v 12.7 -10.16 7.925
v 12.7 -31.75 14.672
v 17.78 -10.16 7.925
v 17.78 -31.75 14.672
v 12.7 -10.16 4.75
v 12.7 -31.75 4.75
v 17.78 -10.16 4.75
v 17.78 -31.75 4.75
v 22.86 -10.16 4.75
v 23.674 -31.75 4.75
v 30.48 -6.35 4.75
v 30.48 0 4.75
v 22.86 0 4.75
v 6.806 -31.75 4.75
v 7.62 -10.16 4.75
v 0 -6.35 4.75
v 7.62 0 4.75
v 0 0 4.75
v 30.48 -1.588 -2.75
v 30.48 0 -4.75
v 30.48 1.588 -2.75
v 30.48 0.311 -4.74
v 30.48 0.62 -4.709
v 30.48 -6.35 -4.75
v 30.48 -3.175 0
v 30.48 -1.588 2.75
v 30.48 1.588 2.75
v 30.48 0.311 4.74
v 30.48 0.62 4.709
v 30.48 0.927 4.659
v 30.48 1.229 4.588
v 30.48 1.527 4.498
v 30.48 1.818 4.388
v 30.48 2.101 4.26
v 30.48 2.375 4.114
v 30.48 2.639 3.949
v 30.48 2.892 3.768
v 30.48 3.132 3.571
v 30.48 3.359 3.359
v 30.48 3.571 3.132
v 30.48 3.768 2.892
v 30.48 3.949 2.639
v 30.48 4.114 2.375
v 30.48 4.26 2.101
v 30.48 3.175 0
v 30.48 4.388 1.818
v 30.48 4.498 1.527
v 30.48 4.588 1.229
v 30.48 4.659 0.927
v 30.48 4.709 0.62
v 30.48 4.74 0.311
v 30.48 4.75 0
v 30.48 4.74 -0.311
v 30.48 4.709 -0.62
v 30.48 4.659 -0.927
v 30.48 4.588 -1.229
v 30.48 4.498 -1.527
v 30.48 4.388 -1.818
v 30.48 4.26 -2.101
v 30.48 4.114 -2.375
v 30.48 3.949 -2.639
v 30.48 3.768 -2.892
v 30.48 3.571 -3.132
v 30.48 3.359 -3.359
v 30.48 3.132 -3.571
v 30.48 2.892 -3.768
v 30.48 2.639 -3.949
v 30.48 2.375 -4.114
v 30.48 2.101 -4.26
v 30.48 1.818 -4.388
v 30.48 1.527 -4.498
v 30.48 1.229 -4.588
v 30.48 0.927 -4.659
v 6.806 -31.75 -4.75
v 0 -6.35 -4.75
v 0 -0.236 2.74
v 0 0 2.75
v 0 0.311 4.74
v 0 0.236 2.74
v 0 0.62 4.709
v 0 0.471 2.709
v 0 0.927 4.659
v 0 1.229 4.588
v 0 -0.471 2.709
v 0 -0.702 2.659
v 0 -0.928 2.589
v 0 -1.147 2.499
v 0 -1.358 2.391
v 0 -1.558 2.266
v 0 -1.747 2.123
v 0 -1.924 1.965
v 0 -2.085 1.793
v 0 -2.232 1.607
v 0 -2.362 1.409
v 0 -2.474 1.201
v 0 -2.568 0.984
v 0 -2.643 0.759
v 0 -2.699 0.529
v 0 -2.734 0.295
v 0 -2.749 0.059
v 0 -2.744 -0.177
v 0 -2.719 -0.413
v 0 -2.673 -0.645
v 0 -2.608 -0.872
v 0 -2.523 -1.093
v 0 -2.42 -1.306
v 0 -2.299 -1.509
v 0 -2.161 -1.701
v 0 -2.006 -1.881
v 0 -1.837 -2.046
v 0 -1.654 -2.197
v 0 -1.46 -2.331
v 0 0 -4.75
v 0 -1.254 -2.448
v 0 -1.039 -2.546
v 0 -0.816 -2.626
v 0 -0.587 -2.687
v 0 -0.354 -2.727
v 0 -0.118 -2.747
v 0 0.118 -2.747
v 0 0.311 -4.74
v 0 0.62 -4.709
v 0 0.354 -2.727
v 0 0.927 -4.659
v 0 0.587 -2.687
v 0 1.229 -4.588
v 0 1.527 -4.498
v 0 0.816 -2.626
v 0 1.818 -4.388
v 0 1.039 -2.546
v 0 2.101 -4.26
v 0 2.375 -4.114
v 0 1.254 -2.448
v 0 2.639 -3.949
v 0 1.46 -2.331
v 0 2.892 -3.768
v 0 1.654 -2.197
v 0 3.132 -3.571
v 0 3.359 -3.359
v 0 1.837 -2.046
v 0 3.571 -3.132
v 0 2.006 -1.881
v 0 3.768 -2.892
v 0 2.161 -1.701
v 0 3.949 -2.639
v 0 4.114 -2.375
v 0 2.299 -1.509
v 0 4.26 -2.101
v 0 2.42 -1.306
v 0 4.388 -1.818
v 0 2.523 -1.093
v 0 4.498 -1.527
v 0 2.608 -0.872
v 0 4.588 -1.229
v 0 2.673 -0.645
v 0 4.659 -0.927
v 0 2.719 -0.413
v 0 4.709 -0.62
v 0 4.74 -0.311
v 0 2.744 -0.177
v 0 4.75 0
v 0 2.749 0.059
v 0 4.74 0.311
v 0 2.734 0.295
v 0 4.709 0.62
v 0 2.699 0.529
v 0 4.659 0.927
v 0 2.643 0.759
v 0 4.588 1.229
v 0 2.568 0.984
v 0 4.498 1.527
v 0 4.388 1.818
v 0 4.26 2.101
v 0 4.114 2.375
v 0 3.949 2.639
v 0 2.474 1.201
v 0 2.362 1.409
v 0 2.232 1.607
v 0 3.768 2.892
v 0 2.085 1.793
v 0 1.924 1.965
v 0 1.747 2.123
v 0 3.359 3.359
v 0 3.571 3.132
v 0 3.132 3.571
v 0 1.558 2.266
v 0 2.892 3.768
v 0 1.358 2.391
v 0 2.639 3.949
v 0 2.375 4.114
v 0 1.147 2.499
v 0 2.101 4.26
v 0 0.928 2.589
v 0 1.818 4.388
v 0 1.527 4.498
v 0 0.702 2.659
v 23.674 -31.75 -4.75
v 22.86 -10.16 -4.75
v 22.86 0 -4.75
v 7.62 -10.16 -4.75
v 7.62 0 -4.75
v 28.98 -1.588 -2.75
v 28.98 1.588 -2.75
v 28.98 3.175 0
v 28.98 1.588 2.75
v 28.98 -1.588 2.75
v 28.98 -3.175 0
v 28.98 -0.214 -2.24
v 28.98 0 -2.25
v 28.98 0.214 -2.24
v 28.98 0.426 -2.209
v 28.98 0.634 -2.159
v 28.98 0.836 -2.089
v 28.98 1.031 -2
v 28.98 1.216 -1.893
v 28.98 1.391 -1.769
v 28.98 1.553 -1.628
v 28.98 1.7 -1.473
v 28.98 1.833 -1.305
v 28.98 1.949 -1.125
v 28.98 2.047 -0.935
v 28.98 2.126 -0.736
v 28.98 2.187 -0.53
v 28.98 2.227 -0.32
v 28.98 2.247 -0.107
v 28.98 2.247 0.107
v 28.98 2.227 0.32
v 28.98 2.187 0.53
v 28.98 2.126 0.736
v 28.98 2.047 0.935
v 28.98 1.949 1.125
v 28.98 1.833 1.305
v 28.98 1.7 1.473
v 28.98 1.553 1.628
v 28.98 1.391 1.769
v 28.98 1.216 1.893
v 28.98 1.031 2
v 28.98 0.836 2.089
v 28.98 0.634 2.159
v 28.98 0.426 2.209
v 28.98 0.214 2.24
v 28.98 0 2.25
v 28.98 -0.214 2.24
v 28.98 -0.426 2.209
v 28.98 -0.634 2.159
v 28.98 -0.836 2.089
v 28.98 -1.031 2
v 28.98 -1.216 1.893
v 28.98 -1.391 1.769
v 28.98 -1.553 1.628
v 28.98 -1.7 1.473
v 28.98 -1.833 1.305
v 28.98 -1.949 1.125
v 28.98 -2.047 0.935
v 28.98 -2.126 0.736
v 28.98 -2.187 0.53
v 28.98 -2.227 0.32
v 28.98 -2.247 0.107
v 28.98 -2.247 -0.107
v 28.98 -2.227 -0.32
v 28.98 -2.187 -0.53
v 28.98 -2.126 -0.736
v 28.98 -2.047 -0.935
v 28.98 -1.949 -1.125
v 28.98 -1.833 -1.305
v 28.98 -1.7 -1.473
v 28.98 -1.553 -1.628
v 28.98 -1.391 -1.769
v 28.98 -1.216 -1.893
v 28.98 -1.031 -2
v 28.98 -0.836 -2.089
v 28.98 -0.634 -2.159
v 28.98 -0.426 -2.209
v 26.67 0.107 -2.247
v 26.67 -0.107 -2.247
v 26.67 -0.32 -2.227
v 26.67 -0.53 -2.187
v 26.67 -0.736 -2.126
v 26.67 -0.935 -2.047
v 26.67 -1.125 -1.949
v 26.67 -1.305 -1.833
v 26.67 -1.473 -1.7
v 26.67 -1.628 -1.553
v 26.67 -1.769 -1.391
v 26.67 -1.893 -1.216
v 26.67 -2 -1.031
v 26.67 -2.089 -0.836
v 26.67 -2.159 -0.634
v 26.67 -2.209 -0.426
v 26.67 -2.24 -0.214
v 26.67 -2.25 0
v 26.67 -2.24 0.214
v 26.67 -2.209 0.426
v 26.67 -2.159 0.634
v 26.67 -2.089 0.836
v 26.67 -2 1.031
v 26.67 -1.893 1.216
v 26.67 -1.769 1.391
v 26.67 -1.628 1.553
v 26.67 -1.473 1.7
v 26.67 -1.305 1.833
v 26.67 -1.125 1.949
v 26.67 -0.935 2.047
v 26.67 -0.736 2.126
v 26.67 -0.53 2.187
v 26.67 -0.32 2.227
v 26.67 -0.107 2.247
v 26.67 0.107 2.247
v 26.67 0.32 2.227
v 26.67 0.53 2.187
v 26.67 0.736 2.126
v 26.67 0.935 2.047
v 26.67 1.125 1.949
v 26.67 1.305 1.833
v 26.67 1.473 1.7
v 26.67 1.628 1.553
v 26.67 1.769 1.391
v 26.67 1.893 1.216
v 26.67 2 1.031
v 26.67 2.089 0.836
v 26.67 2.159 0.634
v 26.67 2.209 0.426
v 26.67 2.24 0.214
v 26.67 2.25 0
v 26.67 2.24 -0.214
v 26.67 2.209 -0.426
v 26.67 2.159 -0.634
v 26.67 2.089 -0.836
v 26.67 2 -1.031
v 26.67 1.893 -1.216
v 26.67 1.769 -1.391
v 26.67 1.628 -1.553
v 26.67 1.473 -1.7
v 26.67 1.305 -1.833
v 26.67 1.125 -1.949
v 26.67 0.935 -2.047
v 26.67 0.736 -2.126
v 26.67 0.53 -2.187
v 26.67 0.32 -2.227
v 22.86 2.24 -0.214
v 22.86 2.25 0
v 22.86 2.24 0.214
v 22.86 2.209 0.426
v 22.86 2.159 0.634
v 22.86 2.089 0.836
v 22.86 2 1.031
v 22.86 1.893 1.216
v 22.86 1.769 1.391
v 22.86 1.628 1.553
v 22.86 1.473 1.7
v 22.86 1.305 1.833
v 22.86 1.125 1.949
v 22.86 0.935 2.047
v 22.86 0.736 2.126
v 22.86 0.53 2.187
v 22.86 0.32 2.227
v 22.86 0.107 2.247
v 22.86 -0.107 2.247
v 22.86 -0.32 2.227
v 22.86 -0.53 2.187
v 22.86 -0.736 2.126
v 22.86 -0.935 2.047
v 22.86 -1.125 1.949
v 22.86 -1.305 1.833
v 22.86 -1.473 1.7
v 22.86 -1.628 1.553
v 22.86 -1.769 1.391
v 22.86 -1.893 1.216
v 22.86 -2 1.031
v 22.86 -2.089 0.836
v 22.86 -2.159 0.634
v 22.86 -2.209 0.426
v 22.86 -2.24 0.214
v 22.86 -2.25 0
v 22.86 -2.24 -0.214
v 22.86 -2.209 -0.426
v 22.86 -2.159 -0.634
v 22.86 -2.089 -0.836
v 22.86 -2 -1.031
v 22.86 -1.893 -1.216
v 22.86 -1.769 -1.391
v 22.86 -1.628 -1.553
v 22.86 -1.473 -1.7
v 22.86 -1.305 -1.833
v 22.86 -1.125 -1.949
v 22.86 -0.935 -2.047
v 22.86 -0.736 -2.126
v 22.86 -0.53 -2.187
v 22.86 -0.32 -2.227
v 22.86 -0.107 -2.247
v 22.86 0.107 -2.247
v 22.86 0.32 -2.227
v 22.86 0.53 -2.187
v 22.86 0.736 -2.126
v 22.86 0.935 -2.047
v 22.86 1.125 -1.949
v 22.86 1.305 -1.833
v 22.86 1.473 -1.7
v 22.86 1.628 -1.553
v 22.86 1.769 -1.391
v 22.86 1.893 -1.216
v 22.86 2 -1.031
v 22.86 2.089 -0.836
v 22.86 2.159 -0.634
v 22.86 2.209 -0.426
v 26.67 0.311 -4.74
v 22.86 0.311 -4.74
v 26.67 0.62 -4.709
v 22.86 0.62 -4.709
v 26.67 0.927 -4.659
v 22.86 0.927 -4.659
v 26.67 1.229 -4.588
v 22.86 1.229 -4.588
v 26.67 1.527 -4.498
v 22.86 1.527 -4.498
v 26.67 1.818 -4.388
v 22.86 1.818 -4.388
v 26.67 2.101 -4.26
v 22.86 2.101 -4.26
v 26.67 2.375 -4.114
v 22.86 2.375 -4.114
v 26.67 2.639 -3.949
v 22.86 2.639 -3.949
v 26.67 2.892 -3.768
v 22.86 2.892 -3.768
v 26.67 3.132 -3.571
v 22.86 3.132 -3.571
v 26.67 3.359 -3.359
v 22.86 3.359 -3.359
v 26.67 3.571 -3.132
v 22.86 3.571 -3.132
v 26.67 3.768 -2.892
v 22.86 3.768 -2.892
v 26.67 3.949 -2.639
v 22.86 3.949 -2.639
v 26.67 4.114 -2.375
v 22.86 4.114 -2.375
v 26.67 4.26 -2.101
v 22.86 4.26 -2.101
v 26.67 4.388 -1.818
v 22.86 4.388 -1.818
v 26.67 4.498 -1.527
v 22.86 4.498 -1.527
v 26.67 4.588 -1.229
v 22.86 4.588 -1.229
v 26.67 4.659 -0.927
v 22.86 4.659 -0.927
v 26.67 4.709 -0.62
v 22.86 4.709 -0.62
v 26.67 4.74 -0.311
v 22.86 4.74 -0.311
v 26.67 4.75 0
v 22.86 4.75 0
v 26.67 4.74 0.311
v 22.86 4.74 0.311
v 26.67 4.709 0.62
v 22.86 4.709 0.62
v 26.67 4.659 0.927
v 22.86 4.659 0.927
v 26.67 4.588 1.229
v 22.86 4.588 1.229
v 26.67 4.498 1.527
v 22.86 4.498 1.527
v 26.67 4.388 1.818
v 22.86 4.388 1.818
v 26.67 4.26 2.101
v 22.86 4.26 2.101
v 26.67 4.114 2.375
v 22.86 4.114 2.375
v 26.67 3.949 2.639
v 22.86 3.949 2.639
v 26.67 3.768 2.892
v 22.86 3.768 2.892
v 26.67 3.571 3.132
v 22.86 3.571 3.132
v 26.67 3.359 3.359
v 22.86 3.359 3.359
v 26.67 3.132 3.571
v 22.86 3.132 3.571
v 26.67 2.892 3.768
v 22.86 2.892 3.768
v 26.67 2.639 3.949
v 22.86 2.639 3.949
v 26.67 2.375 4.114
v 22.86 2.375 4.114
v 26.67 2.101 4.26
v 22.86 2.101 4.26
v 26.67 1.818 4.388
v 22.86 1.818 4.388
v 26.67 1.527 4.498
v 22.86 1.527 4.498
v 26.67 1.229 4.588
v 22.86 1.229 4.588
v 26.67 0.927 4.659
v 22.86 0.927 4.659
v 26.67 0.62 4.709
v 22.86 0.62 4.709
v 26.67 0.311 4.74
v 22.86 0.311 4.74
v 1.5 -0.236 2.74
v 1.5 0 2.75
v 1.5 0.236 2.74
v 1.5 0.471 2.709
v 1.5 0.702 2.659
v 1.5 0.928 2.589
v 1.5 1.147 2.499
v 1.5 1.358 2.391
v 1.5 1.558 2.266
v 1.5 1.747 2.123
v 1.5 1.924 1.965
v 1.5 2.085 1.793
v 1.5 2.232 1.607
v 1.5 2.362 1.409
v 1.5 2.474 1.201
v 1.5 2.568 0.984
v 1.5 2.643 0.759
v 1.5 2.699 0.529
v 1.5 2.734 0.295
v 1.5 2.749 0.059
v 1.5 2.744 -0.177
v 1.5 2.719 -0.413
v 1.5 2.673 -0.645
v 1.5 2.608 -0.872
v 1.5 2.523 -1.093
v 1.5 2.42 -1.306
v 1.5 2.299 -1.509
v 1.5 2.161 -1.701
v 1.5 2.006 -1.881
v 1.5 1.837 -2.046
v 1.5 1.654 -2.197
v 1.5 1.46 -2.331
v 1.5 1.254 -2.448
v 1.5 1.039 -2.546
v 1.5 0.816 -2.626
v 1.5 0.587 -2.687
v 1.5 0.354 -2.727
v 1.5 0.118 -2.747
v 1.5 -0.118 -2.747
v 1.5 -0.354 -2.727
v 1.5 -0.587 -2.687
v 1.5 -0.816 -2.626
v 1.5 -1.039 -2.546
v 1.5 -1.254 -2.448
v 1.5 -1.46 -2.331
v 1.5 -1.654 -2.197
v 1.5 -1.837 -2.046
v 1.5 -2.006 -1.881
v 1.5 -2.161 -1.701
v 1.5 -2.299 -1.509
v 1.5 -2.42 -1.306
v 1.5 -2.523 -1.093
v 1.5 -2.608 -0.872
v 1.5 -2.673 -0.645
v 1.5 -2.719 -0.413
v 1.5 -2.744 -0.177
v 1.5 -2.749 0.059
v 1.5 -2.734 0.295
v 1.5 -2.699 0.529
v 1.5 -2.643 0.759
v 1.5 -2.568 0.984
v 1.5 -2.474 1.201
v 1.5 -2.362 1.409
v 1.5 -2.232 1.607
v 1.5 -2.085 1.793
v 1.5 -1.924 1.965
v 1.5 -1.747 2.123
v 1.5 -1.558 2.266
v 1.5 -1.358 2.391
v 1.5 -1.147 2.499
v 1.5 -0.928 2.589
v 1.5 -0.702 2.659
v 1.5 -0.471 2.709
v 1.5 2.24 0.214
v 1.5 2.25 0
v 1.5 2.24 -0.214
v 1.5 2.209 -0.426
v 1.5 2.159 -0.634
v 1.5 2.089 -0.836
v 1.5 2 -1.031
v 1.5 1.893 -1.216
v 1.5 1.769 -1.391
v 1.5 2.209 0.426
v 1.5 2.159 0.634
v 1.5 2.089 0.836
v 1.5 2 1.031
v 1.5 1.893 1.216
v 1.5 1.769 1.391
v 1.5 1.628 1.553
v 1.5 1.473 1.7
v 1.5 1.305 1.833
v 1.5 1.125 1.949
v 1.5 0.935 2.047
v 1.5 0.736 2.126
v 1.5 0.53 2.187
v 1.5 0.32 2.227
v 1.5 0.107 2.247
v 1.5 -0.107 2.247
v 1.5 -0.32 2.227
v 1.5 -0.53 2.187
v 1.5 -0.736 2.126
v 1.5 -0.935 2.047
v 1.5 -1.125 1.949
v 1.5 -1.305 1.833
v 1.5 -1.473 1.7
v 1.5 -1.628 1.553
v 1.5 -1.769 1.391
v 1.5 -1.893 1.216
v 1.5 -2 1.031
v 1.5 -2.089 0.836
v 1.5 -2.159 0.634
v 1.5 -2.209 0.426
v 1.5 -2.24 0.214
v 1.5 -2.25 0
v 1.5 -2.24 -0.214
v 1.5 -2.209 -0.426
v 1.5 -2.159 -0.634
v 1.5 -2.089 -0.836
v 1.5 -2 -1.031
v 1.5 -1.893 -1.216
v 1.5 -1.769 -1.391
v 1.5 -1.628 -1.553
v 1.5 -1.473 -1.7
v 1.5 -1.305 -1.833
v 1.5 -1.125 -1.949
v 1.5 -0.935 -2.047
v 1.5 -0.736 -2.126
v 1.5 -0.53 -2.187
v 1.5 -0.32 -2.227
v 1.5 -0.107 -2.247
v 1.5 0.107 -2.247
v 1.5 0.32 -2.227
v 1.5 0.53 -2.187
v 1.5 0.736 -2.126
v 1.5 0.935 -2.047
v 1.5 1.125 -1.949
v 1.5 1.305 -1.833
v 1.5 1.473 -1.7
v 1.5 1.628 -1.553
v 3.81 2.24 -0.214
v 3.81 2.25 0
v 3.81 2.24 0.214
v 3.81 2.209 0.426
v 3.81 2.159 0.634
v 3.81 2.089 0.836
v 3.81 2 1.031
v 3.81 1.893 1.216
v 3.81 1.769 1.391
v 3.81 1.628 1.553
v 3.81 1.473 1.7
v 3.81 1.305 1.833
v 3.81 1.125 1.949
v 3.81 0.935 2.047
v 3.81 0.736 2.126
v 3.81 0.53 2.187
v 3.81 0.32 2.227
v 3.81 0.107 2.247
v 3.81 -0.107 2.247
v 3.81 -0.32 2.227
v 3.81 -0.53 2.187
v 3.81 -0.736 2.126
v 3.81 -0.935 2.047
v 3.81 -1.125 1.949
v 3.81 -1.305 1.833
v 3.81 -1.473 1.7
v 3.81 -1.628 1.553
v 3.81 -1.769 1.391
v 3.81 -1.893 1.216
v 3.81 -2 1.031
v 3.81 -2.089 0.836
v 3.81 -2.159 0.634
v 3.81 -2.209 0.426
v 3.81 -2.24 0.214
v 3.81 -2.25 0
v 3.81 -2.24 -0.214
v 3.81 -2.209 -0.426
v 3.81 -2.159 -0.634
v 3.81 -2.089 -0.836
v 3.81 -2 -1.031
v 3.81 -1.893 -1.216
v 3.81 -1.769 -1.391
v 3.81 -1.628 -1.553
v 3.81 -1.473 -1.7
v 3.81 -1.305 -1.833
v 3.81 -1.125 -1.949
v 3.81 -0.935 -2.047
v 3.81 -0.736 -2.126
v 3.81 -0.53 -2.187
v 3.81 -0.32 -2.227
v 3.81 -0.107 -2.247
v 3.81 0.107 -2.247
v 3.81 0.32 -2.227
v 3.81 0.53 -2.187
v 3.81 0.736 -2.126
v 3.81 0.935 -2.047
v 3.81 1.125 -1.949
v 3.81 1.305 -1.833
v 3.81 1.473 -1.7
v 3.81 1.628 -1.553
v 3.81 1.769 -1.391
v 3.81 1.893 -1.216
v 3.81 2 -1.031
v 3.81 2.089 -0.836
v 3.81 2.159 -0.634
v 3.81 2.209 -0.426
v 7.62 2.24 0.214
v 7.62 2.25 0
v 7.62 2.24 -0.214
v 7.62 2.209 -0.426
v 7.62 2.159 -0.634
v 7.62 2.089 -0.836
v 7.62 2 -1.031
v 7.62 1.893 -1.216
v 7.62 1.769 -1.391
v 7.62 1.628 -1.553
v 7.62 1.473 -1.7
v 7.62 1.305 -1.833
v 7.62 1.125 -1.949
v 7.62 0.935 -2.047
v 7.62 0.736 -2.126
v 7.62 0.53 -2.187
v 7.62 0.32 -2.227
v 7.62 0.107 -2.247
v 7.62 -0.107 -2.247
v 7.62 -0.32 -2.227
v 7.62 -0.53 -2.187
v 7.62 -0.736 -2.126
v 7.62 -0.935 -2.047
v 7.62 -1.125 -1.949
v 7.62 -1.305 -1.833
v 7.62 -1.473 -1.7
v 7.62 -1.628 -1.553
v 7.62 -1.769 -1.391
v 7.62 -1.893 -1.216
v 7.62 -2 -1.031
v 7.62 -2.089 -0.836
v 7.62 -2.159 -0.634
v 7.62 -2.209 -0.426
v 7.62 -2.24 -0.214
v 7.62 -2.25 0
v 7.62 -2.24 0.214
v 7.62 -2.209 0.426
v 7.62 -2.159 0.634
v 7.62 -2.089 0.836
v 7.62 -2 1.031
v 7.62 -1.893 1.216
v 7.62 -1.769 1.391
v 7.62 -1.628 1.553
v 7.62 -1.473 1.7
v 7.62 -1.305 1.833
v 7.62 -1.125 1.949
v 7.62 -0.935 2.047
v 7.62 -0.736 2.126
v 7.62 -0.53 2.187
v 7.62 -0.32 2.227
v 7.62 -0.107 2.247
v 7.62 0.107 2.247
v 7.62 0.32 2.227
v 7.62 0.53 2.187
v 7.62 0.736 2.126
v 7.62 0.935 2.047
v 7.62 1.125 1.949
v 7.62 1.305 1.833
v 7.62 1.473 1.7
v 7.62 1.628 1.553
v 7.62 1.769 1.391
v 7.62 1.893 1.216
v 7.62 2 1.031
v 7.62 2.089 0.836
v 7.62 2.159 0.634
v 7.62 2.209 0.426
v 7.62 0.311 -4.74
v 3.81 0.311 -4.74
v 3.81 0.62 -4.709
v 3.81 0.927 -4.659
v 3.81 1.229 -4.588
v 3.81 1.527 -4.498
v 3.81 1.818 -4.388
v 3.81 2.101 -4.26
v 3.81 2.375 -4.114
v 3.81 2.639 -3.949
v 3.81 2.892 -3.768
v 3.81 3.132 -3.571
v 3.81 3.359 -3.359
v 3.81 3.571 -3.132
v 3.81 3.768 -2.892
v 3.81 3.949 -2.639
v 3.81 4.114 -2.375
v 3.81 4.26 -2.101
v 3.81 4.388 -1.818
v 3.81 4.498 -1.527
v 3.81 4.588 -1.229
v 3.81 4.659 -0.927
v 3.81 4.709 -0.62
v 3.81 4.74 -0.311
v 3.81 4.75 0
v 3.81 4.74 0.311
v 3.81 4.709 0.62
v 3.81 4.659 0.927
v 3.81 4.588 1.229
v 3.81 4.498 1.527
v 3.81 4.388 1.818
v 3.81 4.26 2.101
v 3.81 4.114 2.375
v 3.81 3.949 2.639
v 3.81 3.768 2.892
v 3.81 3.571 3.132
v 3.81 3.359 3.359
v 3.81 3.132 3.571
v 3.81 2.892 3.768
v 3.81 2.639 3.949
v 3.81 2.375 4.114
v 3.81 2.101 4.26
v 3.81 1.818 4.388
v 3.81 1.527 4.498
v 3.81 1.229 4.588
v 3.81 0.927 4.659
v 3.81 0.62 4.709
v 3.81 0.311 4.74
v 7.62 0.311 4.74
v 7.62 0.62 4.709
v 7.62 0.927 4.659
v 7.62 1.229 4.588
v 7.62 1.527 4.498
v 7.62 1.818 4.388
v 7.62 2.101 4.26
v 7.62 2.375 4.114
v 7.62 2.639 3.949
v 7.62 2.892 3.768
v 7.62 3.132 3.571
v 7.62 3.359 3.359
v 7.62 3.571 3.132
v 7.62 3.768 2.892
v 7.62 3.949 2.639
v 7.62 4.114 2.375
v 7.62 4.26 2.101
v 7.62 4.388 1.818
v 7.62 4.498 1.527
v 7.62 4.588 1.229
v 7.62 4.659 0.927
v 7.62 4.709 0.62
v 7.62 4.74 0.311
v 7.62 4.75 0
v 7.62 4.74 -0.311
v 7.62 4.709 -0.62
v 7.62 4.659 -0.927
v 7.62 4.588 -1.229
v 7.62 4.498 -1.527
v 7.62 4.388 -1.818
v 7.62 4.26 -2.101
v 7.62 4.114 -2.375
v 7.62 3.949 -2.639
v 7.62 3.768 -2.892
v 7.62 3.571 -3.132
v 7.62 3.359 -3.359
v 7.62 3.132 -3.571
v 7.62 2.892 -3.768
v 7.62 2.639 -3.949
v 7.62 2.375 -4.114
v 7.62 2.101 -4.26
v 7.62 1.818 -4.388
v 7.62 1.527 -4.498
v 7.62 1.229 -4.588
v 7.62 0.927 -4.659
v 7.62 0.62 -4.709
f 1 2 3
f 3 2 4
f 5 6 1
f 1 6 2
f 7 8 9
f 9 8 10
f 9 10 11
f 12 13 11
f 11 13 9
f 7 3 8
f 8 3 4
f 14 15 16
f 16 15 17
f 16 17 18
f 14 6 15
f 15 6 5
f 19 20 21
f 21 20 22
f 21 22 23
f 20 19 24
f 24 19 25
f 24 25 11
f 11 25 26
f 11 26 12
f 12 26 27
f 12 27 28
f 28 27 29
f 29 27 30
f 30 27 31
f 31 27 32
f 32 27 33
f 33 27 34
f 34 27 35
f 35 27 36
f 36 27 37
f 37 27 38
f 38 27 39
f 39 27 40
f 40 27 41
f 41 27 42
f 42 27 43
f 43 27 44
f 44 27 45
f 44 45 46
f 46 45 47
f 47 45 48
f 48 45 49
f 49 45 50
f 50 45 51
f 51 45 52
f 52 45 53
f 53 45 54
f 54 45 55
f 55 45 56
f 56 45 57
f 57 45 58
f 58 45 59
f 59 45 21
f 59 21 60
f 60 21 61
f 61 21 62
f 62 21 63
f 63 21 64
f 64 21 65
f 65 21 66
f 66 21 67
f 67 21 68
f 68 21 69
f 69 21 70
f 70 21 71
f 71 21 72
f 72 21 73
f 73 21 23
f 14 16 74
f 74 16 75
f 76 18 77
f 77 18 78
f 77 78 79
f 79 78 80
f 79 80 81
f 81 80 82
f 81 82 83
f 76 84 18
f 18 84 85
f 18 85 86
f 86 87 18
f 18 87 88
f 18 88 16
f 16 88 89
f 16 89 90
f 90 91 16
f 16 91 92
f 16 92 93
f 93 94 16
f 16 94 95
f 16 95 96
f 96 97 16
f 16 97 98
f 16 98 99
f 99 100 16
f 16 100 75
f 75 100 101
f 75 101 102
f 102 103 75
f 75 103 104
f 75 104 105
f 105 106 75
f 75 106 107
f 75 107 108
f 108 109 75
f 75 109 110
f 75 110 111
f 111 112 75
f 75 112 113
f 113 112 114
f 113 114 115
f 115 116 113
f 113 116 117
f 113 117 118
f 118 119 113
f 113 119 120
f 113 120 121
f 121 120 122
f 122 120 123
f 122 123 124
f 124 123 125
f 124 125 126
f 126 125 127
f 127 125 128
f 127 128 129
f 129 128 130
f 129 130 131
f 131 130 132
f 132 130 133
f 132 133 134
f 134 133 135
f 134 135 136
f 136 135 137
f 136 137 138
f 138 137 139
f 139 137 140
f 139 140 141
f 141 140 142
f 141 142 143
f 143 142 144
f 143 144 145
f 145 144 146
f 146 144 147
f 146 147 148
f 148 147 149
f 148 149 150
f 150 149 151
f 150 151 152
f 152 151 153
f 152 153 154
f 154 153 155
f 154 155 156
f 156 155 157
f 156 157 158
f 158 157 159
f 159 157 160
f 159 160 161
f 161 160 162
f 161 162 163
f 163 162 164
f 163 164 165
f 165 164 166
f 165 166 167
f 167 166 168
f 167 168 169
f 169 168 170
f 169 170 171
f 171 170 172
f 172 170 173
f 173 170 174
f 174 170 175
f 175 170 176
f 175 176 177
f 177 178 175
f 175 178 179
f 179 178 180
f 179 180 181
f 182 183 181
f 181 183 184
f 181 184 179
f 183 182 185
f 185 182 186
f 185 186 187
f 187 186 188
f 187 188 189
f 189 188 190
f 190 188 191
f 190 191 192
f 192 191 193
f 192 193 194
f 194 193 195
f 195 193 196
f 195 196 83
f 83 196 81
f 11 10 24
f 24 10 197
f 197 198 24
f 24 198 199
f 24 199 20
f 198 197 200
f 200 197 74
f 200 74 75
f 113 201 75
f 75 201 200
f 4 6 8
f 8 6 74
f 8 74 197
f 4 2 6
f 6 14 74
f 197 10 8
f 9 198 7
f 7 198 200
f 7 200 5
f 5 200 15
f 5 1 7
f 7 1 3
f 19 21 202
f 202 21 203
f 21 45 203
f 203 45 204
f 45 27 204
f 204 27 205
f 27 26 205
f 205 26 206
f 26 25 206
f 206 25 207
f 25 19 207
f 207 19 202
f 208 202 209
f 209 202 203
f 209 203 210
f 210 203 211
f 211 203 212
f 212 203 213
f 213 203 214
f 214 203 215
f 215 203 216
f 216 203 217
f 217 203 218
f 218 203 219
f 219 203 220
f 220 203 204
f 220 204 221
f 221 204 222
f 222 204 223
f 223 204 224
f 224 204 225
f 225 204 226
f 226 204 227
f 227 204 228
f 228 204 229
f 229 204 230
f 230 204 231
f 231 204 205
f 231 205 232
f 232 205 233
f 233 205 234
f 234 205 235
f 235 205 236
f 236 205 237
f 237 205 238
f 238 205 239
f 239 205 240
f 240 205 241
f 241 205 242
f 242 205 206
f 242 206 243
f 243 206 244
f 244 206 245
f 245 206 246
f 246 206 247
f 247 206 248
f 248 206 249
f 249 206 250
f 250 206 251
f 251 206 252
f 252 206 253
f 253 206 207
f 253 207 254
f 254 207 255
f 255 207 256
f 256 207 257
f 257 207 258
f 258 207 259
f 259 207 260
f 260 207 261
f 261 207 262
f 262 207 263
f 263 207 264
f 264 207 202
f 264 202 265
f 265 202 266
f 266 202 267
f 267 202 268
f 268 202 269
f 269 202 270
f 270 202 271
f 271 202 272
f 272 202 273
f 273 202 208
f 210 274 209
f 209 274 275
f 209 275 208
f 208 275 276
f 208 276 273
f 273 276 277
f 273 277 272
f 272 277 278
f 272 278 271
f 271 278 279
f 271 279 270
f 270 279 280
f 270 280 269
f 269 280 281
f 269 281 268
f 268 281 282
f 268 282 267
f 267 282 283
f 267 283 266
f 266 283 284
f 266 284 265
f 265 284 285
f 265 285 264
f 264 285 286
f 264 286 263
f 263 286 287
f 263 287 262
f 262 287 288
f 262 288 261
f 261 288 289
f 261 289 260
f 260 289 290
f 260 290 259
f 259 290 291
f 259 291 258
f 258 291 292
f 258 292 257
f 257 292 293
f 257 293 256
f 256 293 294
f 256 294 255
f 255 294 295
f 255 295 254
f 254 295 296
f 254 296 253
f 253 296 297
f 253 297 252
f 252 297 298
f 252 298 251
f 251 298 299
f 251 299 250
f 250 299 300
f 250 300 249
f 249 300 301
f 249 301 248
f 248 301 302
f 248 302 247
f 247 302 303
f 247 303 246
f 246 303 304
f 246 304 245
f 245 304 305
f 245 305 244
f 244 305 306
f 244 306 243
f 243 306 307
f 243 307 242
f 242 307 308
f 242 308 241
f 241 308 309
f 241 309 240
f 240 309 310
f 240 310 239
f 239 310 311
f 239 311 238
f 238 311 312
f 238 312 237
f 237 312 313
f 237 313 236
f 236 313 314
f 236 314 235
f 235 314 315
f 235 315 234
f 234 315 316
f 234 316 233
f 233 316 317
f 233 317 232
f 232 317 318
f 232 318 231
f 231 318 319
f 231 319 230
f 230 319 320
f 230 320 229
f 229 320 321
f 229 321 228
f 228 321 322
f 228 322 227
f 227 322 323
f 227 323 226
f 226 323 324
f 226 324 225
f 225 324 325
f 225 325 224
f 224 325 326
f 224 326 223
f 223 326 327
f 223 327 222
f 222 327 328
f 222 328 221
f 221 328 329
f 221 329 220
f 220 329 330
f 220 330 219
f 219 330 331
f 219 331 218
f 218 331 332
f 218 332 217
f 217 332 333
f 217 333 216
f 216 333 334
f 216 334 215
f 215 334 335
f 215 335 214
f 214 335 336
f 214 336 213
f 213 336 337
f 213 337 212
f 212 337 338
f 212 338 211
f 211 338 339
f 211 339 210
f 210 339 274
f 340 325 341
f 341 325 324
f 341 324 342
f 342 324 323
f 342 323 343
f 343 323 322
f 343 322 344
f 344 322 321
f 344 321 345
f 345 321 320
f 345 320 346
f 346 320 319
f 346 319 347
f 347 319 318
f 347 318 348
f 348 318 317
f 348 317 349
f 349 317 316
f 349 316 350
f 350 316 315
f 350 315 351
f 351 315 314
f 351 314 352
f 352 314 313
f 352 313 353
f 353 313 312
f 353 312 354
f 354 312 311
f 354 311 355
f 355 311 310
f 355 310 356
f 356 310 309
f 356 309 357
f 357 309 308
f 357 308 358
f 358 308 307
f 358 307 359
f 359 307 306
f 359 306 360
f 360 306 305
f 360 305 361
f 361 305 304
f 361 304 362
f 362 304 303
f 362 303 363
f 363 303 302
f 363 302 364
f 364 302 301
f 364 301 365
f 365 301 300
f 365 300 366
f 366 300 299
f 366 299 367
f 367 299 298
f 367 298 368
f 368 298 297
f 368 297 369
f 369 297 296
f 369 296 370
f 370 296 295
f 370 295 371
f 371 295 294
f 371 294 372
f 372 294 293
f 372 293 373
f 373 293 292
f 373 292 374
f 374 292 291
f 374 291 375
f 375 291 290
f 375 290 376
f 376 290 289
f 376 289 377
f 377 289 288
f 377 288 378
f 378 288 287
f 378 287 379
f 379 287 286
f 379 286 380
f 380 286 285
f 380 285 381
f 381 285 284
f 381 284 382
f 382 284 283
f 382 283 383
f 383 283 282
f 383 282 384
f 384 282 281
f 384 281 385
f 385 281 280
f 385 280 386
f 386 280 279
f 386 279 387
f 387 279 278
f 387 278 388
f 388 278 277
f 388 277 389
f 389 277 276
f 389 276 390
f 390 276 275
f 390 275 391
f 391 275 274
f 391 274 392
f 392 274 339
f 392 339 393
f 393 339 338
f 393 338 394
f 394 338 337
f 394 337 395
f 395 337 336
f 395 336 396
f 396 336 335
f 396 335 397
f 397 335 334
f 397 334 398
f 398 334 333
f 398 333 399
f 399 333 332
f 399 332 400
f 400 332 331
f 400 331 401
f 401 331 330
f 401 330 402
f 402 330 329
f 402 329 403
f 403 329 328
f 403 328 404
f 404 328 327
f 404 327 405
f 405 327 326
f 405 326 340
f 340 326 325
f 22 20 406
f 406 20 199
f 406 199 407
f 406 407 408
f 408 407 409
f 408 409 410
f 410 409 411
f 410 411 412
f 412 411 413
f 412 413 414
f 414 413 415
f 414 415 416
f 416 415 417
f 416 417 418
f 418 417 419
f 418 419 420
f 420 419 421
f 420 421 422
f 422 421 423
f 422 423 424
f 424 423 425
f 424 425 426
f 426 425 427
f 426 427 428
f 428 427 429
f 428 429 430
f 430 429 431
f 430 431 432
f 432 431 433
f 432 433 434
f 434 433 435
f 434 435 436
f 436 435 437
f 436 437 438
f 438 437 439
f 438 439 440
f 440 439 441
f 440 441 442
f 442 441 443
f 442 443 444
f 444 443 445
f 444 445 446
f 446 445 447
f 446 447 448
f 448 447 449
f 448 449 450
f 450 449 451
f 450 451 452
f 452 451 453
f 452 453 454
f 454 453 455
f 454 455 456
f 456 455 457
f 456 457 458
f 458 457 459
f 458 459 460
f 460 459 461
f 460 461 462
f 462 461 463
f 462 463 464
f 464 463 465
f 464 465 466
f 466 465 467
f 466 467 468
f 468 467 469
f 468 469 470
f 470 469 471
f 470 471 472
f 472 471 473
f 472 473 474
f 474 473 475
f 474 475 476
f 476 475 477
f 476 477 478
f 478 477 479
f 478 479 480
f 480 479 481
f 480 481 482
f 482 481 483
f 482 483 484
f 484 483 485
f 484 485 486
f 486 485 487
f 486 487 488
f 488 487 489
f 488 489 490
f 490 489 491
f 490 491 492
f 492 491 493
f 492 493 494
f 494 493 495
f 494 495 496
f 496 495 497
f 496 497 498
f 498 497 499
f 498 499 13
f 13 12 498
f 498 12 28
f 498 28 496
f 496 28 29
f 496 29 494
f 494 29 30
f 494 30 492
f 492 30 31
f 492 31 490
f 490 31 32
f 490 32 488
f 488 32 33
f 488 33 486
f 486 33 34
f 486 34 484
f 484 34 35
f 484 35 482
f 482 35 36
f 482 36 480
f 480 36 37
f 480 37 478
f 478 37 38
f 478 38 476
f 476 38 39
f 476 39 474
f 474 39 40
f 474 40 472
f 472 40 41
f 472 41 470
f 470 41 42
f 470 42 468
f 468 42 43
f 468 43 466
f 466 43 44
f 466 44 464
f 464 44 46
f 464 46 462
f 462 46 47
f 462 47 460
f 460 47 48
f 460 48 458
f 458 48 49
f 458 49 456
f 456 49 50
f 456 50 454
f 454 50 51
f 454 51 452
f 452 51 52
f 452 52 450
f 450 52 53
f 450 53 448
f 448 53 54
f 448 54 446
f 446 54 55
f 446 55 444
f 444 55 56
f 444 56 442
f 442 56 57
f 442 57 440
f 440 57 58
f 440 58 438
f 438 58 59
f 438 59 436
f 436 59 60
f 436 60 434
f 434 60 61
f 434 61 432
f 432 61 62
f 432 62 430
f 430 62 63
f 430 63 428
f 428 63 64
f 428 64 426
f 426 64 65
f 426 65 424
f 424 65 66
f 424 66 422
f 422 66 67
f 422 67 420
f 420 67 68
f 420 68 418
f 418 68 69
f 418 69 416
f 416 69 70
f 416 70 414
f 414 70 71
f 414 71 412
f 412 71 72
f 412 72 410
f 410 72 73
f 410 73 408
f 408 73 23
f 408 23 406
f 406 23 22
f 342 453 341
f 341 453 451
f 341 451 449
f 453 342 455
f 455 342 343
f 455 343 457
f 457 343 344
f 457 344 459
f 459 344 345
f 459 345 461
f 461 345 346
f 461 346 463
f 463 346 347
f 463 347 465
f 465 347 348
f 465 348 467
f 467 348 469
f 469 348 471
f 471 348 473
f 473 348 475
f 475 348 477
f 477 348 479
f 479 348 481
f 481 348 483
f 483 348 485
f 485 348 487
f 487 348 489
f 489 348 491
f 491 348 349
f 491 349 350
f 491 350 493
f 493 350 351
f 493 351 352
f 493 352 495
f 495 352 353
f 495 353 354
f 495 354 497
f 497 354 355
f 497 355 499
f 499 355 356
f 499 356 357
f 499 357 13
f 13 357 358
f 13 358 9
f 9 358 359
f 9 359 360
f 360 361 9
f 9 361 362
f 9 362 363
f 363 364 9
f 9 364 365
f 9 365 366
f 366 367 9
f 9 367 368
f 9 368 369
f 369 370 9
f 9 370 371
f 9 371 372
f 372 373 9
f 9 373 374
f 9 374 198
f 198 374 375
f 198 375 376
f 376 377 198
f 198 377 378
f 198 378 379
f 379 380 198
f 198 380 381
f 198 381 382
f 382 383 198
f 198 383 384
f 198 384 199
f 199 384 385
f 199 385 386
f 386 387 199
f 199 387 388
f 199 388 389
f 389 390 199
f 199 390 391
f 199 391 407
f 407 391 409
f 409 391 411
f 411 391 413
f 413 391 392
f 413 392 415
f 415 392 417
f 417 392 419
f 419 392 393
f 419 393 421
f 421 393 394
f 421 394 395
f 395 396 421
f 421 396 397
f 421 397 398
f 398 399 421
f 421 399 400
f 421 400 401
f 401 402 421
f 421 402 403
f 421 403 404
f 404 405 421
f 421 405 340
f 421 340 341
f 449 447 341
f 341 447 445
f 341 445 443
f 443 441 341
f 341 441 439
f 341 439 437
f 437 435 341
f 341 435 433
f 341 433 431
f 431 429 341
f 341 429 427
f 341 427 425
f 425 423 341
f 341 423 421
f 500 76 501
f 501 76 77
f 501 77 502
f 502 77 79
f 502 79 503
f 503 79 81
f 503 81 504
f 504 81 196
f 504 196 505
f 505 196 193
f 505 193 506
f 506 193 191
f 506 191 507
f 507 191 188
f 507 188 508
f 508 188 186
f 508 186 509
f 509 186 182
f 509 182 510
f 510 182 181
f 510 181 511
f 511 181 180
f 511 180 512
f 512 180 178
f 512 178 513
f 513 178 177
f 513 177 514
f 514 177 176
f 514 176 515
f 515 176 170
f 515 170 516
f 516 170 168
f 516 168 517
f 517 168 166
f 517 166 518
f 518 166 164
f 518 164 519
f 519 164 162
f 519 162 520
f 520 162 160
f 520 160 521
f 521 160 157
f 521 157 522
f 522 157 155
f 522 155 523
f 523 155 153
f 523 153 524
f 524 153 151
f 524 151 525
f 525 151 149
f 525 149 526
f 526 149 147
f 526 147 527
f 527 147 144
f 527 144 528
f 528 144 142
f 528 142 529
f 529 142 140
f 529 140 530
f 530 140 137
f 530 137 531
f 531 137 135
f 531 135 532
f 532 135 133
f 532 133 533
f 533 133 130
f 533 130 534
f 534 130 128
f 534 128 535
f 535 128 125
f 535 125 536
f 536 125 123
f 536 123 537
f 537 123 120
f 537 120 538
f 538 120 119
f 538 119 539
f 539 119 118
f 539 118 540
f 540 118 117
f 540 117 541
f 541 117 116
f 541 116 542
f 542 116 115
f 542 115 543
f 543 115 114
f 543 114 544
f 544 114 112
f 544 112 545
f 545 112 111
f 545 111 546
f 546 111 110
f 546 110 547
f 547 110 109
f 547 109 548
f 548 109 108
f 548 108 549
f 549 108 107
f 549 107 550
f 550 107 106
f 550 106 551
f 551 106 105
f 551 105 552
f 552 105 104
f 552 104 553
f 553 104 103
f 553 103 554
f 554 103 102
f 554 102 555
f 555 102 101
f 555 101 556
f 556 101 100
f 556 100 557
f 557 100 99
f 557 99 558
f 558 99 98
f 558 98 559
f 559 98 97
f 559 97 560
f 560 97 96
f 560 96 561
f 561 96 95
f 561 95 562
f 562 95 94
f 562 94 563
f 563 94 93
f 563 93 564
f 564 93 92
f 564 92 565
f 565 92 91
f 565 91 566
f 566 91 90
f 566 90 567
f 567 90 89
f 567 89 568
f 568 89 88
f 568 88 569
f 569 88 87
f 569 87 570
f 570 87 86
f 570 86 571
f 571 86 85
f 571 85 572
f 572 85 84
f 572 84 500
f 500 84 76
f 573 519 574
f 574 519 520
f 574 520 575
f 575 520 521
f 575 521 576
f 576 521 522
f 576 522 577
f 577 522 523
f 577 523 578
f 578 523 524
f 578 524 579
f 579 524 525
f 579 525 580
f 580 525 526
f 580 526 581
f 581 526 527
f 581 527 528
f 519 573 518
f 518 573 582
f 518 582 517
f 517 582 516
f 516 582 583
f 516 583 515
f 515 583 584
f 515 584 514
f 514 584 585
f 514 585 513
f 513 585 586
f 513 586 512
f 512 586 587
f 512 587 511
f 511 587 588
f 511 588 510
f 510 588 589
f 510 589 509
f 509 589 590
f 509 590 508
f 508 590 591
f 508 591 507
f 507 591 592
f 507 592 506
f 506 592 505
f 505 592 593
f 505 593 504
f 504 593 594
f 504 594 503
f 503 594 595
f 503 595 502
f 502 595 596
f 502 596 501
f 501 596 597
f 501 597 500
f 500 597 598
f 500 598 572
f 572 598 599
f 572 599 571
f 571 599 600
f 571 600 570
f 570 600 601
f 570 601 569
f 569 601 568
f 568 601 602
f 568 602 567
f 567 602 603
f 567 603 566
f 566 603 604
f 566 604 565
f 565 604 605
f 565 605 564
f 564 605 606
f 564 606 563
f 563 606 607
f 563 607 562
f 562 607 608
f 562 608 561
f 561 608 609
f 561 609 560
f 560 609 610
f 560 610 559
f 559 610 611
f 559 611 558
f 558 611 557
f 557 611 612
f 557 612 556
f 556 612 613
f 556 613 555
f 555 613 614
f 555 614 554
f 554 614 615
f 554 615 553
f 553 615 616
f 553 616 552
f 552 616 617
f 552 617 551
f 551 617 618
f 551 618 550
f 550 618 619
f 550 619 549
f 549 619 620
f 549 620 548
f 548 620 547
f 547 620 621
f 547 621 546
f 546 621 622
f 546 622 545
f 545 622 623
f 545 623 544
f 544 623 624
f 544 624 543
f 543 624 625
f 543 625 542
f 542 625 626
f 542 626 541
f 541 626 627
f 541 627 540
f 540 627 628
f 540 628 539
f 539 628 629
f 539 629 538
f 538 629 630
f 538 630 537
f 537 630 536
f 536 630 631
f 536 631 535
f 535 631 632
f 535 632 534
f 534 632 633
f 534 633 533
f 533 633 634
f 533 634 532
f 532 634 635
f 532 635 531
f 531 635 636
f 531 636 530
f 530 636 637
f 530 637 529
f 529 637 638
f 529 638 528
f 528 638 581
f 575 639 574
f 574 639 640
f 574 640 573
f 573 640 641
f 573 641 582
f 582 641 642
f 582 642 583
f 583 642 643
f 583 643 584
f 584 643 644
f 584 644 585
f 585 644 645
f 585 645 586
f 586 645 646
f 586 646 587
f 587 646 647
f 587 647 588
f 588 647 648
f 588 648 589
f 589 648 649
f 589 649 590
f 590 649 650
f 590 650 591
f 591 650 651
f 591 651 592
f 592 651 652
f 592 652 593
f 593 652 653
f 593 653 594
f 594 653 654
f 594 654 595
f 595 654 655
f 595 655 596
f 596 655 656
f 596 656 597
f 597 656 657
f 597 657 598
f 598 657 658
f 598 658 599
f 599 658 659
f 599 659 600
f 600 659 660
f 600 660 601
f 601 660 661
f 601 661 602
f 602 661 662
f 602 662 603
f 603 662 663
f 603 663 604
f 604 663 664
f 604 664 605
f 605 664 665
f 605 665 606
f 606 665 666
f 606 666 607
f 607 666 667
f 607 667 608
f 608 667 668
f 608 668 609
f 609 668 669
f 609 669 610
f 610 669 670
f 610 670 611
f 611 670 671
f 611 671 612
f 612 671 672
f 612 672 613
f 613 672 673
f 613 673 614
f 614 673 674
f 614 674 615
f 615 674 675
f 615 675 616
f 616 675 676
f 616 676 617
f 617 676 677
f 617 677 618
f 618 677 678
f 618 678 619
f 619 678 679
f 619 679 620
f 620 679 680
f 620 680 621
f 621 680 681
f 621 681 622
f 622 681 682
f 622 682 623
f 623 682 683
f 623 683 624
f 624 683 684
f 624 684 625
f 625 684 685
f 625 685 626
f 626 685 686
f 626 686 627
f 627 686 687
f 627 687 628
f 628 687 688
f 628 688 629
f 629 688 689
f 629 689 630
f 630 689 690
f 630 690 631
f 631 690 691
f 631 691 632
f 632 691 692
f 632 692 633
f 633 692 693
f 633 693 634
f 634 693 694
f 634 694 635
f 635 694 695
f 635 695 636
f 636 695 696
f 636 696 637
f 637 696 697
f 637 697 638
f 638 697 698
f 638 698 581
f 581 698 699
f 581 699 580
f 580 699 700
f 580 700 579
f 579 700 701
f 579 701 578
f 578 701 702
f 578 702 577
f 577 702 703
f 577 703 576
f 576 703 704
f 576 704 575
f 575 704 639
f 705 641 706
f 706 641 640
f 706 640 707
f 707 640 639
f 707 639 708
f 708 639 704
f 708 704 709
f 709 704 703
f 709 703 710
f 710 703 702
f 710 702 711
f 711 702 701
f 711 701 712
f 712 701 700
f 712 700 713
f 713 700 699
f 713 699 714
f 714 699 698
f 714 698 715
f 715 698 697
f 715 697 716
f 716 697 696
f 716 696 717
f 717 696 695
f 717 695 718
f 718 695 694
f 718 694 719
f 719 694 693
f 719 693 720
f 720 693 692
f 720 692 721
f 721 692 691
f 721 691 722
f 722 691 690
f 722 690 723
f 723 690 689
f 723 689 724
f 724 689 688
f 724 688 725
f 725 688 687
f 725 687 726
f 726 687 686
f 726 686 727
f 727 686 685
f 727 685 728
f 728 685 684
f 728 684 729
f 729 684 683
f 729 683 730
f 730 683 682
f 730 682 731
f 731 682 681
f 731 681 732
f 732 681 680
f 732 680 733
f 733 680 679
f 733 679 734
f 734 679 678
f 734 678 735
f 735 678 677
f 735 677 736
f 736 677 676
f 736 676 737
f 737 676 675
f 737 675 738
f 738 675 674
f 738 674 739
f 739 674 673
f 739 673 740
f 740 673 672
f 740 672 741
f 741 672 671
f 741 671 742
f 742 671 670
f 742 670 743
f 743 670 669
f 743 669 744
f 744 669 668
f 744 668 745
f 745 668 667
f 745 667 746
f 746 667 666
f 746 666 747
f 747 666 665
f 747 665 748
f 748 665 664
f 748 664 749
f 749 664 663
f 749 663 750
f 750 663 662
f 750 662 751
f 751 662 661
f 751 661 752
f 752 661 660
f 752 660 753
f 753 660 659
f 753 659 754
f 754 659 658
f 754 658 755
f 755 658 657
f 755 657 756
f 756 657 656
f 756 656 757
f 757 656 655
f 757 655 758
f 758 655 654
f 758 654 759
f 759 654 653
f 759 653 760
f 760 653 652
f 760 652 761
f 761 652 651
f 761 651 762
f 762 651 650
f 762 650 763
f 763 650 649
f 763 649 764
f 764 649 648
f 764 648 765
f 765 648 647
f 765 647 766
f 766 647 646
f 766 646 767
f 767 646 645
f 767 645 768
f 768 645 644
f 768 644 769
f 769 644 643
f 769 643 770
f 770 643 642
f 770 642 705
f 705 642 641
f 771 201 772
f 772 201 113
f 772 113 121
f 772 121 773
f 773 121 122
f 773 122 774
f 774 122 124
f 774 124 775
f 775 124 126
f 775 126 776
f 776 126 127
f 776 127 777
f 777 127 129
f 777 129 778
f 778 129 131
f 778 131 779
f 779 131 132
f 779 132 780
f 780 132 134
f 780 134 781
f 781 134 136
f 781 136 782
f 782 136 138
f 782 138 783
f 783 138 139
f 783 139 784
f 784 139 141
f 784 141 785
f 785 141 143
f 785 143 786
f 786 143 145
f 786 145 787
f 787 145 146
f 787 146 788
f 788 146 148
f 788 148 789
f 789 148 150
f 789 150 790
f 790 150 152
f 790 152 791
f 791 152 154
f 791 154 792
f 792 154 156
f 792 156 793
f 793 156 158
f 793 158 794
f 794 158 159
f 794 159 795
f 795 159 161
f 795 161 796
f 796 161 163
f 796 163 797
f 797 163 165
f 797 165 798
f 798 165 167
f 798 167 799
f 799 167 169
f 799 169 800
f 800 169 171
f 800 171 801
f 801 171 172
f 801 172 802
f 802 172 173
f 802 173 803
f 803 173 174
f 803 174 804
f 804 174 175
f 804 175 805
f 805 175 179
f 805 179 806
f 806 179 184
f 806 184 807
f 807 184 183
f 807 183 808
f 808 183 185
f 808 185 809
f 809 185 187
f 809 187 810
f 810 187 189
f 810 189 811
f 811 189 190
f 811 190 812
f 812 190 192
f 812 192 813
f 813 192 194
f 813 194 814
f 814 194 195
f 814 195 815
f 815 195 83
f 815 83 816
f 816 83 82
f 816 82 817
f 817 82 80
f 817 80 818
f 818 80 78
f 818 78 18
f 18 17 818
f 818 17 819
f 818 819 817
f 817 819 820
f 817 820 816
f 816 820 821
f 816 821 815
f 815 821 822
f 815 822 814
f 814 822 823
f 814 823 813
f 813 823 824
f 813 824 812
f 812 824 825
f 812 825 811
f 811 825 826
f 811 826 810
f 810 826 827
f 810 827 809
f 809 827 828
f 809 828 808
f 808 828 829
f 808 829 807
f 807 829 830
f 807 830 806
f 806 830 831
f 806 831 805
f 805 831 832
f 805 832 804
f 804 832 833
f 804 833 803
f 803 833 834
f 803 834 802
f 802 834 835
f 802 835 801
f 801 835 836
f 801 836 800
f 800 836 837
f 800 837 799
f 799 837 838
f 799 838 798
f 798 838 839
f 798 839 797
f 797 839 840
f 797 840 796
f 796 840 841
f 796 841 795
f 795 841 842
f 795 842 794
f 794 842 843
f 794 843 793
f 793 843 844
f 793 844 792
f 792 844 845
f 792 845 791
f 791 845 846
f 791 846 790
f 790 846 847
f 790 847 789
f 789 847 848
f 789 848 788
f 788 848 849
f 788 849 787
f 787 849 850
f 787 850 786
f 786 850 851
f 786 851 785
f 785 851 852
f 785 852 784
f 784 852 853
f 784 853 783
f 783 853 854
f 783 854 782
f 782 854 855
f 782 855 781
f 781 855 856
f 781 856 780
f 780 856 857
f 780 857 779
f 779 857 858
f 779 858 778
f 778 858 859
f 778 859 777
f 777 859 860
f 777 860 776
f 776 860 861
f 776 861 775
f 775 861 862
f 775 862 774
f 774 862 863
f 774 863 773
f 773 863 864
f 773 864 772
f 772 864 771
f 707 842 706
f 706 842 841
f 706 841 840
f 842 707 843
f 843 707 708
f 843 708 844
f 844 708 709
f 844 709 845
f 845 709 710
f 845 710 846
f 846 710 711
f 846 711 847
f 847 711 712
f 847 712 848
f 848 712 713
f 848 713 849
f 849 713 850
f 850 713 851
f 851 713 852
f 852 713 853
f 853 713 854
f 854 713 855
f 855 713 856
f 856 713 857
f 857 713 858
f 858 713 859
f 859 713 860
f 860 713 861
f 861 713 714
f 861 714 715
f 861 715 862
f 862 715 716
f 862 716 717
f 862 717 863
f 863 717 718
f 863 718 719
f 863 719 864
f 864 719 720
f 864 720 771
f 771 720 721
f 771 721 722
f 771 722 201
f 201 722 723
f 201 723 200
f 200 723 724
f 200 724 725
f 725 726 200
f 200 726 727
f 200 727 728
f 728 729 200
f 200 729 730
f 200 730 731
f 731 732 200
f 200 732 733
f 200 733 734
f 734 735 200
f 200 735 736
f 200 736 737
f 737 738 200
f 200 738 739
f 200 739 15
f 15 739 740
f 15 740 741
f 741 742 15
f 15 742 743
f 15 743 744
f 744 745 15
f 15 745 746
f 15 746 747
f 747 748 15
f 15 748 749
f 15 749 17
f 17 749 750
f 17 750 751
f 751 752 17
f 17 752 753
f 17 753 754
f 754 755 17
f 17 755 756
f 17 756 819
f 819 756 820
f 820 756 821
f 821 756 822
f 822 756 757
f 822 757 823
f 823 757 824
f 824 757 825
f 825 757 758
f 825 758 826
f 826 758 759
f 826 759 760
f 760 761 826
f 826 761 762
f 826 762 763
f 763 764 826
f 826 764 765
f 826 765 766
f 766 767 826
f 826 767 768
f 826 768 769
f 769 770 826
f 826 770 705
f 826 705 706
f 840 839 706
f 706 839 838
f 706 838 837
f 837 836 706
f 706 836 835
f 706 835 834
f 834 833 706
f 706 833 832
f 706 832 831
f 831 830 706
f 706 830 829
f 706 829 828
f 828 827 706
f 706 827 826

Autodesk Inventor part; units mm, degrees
ref_plane "YZ Plane" through (0, 0, 0) normal (1, 0, 0) x (0, 1, 0)
ref_plane "XZ Plane" through (0, 0, 0) normal (0, 1, 0) x (-1, 0, 0)
ref_plane "XY Plane" through (0, 0, 0) normal (0, 0, 1) x (1, 0, 0)
sketch "Sketch1" plane through (0, 0, 0) normal (1, 0, 0) x (0, 1, 0)
  circle A0 centre (0, 0) radius 2.25
  circle A1 centre (0, 0) radius 4.75
  line L0 (0, 4.75) -> (-10.16, 4.75)
  line L1 (0, -4.75) -> (-10.16, -4.75)
  line L2 (-10.16, 4.75) -> (-10.16, -4.75)
  dimension "d0" = 4.5
  dimension "d1" = 9.5
  dimension "d2" = 10.16
  dimension "d3" = 10.16
extrude "Extrusion1" add sketch "Sketch1" along normal blind 7.62
ref_plane "Work Plane1" through (15.24, 0, 0) normal (1, 0, 0) x (0, 0, -1)
mirror "Mirror1" about plane through (15.24, 0, 0) normal (1, 0, 0) of "Extrusion1"
sketch "Sketch2" plane through (30.48, -10.16, 4.75) normal (1, 0, 0) x (0, 0, -1)
  circle A0 centre (4.75, 10.16) radius 2.25 projected
  line L0 (7.5, 8.5723) -> (4.75, 6.9846)
  line L1 (4.75, 6.9846) -> (2, 8.5723)
  line L2 (2, 8.5723) -> (2, 11.7477)
  line L3 (2, 11.7477) -> (4.75, 13.3354)
  line L4 (4.75, 13.3354) -> (7.5, 11.7477)
  line L5 (7.5, 11.7477) -> (7.5, 8.5723)
  dimension "d7" = 5.5
extrude "Extrusion2" cut sketch "Sketch2" against normal blind 1.5
sketch "Sketch3" plane through (0, 0, 0) normal (-1, 0, 0) x (0, 0, 1)
  circle A0 centre (0, 0) radius 2.75
  dimension "d10" = 5.5
extrude "Extrusion3" cut sketch "Sketch3" against normal blind 1.5
sketch "Sketch4" plane through (0, 0, 0) normal (-1, 0, 0) x (0, 0, 1)
  line L0 (4.75, 0) -> (7.925, -10.16)
  line L1 (4.75, -10.16) -> (-4.75, -10.16) projected
  line L2 (7.925, -10.16) -> (4.75, -10.16)
  line L3 (4.75, 0) -> (4.75, -10.16)
  point P0 (0, 0)
  dimension "d13" = 3.175
extrude "Extrusion4" add sketch "Sketch4" against normal up to surface (30.48 mm away)
sketch "Sketch5" plane through (0, 0, 0) normal (-1, 0, 0) x (0, 0, 1)
  line L0 (-4.75, -10.16) -> (-4.75, 0) projected
  line L1 (-4.75, -10.16) -> (-4.75, -31.75)
  line L2 (4.75, 0) -> (4.75, -10.16) projected
  line L3 (7.925, -10.16) -> (14.6719, -31.75)
  line L4 (4.75, 0) -> (7.925, -10.16) projected
  line L5 (-4.75, -31.75) -> (14.6719, -31.75)
  line L6 (7.925, -10.16) -> (-4.75, -10.16) projected
  line L7 (-4.75, -10.16) -> (7.925, -10.16)
  point P0 (0, 0)
  dimension "d16" = 31.75
extrude "Extrusion5" add sketch "Sketch5" against normal up to surface (30.48 mm away) contours L6 L3 L5 L1
sketch "Sketch6" plane through (7.62, 0, -4.75) normal (0, 0, -1) x (-1, 0, 0)
  line L0 (-22.86, -31.75) -> (-22.86, 0) projected
  line L1 (-22.86, -6.35) -> (-16.0541, -31.75)
  line L2 (7.62, -31.75) -> (-22.86, -31.75) projected
  line L3 (7.62, -6.35) -> (0.8141, -31.75)
  line L4 (7.62, 0) -> (7.62, -31.75) projected
  line L5 (-22.86, -6.35) -> (-22.86, -31.75)
  line L6 (-22.86, -31.75) -> (-16.0541, -31.75)
  line L7 (0.8141, -31.75) -> (7.62, -31.75)
  line L8 (7.62, -6.35) -> (7.62, -31.75)
  dimension "d20" = 15
  dimension "d21" = 6.35
  dimension "d22" = 15
  dimension "d23" = 6.35
extrude "Extrusion6" cut sketch "Sketch6" against normal through all
sketch "Sketch7" plane through (6.8059, -31.75, 14.6719) normal (0, -1, 0) x (1, 0, 0)
  line L0 (16.0541, -12.4219) -> (16.0541, -16.9219) projected
  line L1 (16.0541, -19.4219) -> (16.0541, -9.9219) projected
  line L2 (16.0541, -9.9219) -> (16.0541, -19.4219) projected
  line L3 (0.8141, -12.4219) -> (0.8141, -16.9219) projected
  line L4 (0.8141, -9.9219) -> (0.8141, -19.4219) projected
  line L5 (0.8141, -19.4219) -> (0.8141, -9.9219) projected
  line L6 (0.8141, -19.4219) -> (0.8141, -9.9219) projected
  line L7 (0, 0) -> (16.8682, 0) projected
  line L8 (5.8941, 0) -> (10.9741, 0)
  line L9 (10.9741, 0) -> (10.9741, -9.9219)
  line L10 (10.9741, -9.9219) -> (5.8941, -9.9219)
  line L11 (5.8941, -9.9219) -> (5.8941, 0)
  line L12 (5.8941, -9.9219) -> (-12.9487, -9.9219)
  line L13 (-12.9487, -9.9219) -> (-12.9487, 3.2333)
  line L14 (-12.9487, 3.2333) -> (5.8941, 3.2333)
  line L15 (5.8941, 3.2333) -> (5.8941, -9.9219)
  line L16 (10.9741, -9.9219) -> (26.322, -9.9219)
  line L17 (26.322, -9.9219) -> (26.322, 1.6077)
  line L18 (26.322, 1.6077) -> (10.9741, 1.6077)
  line L19 (10.9741, 1.6077) -> (10.9741, -9.9219)
  point P0 (-6.8059, -14.6719)
  dimension "d28" = 5.08
  dimension "d29" = 0
  dimension "d30" = 5.8941
  dimension "d31" = 5.8941
extrude "Extrusion7" cut sketch "Sketch7" against normal through all contours L11 L12 L13 L14 L15 | L19 L18 L17 L16 L9
sketch "Sketch8" plane through (17.78, -31.75, 14.6719) normal (1, 0, 0) x (0, 0, -1)
  line L0 (9.9219, 21.59) -> (19.4219, 21.59) projected
  line L1 (9.9219, 21.59) -> (19.4219, 21.59) projected
  line L2 (9.9219, 21.59) -> (5.1304, 21.59)
  line L3 (5.1304, 21.59) -> (9.9219, 31.75)
  line L4 (9.9219, 31.75) -> (9.9219, 21.59)
  line L5 (9.9219, 0) -> (9.9219, 25.4) projected
  point P0 (14.6719, 31.75)
extrude "Extrusion8" cut sketch "Sketch8" against normal up to surface (5.08 mm away)
equation "\"d30\" = d31"
properties part number "Camera Holder"
